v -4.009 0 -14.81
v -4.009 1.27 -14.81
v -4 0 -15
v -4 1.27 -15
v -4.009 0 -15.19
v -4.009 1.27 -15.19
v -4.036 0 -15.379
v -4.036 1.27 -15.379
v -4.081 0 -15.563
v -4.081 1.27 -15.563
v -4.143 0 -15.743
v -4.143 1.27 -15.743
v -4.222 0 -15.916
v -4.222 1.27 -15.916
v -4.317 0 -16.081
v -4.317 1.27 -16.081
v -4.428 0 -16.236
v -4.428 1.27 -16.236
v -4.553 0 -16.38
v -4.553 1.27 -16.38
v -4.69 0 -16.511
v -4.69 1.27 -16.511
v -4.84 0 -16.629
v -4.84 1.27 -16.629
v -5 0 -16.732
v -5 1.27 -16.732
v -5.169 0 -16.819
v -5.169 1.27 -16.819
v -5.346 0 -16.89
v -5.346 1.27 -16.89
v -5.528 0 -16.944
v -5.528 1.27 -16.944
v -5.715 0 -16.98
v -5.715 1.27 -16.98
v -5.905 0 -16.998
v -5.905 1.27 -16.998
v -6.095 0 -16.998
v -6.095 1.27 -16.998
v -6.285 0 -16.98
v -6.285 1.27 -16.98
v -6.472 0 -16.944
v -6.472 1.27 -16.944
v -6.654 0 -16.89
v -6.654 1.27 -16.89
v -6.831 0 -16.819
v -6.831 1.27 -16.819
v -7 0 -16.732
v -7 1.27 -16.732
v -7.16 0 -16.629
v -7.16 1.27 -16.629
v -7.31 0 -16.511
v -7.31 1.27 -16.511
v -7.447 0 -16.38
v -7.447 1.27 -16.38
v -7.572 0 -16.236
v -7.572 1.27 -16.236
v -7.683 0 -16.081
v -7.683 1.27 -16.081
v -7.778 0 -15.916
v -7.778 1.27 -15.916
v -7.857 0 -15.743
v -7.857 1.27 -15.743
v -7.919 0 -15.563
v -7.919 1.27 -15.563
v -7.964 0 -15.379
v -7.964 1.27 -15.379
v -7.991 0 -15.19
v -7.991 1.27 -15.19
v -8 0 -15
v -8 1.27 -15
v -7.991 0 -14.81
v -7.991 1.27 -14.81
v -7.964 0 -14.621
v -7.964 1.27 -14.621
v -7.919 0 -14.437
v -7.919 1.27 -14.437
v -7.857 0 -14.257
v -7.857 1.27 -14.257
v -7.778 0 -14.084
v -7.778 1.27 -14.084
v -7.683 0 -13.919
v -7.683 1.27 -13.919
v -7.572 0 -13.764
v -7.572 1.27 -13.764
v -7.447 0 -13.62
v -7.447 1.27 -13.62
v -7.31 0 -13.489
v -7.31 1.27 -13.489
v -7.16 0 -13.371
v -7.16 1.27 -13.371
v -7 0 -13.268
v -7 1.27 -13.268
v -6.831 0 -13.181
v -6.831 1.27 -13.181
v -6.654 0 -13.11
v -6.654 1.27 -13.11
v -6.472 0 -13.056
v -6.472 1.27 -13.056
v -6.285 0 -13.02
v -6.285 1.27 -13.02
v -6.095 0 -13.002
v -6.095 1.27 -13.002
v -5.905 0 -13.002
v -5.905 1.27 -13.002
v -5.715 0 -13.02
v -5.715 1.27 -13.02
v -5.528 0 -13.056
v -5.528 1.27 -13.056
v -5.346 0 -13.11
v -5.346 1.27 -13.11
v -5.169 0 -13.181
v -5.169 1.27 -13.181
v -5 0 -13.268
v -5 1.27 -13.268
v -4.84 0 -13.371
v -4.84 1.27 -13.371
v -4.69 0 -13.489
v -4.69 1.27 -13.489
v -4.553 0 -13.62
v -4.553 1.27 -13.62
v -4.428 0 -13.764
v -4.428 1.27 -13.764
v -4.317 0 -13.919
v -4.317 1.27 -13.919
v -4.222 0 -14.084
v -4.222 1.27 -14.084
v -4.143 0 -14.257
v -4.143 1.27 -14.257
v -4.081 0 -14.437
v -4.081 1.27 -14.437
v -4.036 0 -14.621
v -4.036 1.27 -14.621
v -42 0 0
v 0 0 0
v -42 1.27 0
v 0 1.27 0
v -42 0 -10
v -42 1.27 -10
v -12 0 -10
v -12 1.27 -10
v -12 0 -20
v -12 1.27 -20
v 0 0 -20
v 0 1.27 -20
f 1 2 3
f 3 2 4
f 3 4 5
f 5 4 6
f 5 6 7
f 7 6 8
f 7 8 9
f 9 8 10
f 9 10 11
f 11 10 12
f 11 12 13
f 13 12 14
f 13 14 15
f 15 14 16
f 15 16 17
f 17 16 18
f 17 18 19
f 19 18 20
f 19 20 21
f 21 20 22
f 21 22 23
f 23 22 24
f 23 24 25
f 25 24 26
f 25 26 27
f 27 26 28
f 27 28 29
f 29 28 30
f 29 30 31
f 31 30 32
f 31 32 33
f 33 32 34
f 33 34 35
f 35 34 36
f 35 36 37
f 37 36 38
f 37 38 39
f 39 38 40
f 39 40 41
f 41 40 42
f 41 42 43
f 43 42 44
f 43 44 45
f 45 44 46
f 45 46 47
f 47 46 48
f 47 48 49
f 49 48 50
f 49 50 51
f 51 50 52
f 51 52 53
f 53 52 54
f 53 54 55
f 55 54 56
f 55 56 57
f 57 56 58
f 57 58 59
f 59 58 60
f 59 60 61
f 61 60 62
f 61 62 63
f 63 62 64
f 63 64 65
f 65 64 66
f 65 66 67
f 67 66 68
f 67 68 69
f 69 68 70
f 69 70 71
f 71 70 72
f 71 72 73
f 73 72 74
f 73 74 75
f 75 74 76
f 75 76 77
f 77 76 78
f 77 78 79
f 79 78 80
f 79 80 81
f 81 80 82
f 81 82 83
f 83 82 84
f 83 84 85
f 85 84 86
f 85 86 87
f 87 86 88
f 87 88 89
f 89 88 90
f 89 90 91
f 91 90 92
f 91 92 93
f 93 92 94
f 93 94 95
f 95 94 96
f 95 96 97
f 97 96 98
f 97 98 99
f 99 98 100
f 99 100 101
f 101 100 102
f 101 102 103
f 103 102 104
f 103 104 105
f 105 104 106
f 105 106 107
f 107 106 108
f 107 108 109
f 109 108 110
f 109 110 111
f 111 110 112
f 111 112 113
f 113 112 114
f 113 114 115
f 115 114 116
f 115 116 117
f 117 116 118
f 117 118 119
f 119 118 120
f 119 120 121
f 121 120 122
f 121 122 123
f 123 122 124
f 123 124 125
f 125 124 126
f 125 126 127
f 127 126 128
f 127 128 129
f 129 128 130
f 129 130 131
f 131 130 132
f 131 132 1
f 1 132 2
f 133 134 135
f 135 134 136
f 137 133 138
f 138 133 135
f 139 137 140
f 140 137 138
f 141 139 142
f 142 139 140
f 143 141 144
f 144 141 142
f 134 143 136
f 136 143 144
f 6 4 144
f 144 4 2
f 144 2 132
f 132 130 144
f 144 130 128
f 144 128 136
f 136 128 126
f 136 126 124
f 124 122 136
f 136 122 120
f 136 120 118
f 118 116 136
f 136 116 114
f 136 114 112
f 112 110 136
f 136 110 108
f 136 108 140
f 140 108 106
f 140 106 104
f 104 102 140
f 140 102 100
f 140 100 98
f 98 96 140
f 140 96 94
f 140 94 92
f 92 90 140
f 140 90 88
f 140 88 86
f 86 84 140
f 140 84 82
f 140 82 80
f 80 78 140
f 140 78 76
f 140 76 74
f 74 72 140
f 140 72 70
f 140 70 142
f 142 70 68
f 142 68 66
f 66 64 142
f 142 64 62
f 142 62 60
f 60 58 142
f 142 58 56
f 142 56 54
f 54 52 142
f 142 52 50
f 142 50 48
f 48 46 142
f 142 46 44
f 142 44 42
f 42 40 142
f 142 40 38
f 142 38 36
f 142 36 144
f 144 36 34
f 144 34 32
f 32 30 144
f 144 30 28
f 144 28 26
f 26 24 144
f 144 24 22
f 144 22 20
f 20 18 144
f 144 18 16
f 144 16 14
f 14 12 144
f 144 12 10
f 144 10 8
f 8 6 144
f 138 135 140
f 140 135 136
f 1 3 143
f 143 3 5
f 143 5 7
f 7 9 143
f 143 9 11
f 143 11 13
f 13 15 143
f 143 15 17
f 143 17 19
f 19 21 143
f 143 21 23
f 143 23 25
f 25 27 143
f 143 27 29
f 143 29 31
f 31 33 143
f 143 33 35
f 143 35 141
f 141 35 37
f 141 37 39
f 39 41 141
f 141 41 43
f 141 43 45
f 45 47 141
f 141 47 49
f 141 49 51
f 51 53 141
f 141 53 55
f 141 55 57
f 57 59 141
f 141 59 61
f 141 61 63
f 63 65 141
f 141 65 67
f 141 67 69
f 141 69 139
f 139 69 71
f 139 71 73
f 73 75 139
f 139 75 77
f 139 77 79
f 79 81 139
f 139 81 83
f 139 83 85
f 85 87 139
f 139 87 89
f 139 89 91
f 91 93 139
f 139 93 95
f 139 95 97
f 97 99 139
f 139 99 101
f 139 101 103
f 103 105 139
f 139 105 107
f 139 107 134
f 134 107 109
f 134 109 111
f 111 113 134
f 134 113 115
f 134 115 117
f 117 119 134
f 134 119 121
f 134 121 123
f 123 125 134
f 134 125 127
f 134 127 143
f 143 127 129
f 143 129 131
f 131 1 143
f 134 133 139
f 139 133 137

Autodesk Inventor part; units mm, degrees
ref_plane "YZ Plane" through (0, 0, 0) normal (1, 0, 0) x (0, 1, 0)
ref_plane "XZ Plane" through (0, 0, 0) normal (0, 1, 0) x (-1, 0, 0)
ref_plane "XY Plane" through (0, 0, 0) normal (0, 0, 1) x (1, 0, 0)
sketch "Sketch1" plane through (0, 0, 0) normal (0, 1, 0) x (-1, 0, 0)
  line L0 (0, 0) -> (0, -20)
  line L1 (42, 0) -> (0, 0)
  line L2 (42, -10) -> (42, 0)
  line L3 (12, -10) -> (42, -10)
  line L4 (12, -20) -> (12, -10)
  line L5 (0, -20) -> (12, -20)
extrude "Extrusion1" add sketch "Sketch1" along normal blind 1.27
sketch "Sketch2" plane through (0, 1.27, 0) normal (0, 1, 0) x (1, 0, 0)
  point P0 (-6, 15)
hole "Hole1" at (-6, 1.27, -15) direction (0, -1, 0) diameter 4 depth 1.27
properties part number "Y-axis Carriage Flag" material "ABS Plastic"
